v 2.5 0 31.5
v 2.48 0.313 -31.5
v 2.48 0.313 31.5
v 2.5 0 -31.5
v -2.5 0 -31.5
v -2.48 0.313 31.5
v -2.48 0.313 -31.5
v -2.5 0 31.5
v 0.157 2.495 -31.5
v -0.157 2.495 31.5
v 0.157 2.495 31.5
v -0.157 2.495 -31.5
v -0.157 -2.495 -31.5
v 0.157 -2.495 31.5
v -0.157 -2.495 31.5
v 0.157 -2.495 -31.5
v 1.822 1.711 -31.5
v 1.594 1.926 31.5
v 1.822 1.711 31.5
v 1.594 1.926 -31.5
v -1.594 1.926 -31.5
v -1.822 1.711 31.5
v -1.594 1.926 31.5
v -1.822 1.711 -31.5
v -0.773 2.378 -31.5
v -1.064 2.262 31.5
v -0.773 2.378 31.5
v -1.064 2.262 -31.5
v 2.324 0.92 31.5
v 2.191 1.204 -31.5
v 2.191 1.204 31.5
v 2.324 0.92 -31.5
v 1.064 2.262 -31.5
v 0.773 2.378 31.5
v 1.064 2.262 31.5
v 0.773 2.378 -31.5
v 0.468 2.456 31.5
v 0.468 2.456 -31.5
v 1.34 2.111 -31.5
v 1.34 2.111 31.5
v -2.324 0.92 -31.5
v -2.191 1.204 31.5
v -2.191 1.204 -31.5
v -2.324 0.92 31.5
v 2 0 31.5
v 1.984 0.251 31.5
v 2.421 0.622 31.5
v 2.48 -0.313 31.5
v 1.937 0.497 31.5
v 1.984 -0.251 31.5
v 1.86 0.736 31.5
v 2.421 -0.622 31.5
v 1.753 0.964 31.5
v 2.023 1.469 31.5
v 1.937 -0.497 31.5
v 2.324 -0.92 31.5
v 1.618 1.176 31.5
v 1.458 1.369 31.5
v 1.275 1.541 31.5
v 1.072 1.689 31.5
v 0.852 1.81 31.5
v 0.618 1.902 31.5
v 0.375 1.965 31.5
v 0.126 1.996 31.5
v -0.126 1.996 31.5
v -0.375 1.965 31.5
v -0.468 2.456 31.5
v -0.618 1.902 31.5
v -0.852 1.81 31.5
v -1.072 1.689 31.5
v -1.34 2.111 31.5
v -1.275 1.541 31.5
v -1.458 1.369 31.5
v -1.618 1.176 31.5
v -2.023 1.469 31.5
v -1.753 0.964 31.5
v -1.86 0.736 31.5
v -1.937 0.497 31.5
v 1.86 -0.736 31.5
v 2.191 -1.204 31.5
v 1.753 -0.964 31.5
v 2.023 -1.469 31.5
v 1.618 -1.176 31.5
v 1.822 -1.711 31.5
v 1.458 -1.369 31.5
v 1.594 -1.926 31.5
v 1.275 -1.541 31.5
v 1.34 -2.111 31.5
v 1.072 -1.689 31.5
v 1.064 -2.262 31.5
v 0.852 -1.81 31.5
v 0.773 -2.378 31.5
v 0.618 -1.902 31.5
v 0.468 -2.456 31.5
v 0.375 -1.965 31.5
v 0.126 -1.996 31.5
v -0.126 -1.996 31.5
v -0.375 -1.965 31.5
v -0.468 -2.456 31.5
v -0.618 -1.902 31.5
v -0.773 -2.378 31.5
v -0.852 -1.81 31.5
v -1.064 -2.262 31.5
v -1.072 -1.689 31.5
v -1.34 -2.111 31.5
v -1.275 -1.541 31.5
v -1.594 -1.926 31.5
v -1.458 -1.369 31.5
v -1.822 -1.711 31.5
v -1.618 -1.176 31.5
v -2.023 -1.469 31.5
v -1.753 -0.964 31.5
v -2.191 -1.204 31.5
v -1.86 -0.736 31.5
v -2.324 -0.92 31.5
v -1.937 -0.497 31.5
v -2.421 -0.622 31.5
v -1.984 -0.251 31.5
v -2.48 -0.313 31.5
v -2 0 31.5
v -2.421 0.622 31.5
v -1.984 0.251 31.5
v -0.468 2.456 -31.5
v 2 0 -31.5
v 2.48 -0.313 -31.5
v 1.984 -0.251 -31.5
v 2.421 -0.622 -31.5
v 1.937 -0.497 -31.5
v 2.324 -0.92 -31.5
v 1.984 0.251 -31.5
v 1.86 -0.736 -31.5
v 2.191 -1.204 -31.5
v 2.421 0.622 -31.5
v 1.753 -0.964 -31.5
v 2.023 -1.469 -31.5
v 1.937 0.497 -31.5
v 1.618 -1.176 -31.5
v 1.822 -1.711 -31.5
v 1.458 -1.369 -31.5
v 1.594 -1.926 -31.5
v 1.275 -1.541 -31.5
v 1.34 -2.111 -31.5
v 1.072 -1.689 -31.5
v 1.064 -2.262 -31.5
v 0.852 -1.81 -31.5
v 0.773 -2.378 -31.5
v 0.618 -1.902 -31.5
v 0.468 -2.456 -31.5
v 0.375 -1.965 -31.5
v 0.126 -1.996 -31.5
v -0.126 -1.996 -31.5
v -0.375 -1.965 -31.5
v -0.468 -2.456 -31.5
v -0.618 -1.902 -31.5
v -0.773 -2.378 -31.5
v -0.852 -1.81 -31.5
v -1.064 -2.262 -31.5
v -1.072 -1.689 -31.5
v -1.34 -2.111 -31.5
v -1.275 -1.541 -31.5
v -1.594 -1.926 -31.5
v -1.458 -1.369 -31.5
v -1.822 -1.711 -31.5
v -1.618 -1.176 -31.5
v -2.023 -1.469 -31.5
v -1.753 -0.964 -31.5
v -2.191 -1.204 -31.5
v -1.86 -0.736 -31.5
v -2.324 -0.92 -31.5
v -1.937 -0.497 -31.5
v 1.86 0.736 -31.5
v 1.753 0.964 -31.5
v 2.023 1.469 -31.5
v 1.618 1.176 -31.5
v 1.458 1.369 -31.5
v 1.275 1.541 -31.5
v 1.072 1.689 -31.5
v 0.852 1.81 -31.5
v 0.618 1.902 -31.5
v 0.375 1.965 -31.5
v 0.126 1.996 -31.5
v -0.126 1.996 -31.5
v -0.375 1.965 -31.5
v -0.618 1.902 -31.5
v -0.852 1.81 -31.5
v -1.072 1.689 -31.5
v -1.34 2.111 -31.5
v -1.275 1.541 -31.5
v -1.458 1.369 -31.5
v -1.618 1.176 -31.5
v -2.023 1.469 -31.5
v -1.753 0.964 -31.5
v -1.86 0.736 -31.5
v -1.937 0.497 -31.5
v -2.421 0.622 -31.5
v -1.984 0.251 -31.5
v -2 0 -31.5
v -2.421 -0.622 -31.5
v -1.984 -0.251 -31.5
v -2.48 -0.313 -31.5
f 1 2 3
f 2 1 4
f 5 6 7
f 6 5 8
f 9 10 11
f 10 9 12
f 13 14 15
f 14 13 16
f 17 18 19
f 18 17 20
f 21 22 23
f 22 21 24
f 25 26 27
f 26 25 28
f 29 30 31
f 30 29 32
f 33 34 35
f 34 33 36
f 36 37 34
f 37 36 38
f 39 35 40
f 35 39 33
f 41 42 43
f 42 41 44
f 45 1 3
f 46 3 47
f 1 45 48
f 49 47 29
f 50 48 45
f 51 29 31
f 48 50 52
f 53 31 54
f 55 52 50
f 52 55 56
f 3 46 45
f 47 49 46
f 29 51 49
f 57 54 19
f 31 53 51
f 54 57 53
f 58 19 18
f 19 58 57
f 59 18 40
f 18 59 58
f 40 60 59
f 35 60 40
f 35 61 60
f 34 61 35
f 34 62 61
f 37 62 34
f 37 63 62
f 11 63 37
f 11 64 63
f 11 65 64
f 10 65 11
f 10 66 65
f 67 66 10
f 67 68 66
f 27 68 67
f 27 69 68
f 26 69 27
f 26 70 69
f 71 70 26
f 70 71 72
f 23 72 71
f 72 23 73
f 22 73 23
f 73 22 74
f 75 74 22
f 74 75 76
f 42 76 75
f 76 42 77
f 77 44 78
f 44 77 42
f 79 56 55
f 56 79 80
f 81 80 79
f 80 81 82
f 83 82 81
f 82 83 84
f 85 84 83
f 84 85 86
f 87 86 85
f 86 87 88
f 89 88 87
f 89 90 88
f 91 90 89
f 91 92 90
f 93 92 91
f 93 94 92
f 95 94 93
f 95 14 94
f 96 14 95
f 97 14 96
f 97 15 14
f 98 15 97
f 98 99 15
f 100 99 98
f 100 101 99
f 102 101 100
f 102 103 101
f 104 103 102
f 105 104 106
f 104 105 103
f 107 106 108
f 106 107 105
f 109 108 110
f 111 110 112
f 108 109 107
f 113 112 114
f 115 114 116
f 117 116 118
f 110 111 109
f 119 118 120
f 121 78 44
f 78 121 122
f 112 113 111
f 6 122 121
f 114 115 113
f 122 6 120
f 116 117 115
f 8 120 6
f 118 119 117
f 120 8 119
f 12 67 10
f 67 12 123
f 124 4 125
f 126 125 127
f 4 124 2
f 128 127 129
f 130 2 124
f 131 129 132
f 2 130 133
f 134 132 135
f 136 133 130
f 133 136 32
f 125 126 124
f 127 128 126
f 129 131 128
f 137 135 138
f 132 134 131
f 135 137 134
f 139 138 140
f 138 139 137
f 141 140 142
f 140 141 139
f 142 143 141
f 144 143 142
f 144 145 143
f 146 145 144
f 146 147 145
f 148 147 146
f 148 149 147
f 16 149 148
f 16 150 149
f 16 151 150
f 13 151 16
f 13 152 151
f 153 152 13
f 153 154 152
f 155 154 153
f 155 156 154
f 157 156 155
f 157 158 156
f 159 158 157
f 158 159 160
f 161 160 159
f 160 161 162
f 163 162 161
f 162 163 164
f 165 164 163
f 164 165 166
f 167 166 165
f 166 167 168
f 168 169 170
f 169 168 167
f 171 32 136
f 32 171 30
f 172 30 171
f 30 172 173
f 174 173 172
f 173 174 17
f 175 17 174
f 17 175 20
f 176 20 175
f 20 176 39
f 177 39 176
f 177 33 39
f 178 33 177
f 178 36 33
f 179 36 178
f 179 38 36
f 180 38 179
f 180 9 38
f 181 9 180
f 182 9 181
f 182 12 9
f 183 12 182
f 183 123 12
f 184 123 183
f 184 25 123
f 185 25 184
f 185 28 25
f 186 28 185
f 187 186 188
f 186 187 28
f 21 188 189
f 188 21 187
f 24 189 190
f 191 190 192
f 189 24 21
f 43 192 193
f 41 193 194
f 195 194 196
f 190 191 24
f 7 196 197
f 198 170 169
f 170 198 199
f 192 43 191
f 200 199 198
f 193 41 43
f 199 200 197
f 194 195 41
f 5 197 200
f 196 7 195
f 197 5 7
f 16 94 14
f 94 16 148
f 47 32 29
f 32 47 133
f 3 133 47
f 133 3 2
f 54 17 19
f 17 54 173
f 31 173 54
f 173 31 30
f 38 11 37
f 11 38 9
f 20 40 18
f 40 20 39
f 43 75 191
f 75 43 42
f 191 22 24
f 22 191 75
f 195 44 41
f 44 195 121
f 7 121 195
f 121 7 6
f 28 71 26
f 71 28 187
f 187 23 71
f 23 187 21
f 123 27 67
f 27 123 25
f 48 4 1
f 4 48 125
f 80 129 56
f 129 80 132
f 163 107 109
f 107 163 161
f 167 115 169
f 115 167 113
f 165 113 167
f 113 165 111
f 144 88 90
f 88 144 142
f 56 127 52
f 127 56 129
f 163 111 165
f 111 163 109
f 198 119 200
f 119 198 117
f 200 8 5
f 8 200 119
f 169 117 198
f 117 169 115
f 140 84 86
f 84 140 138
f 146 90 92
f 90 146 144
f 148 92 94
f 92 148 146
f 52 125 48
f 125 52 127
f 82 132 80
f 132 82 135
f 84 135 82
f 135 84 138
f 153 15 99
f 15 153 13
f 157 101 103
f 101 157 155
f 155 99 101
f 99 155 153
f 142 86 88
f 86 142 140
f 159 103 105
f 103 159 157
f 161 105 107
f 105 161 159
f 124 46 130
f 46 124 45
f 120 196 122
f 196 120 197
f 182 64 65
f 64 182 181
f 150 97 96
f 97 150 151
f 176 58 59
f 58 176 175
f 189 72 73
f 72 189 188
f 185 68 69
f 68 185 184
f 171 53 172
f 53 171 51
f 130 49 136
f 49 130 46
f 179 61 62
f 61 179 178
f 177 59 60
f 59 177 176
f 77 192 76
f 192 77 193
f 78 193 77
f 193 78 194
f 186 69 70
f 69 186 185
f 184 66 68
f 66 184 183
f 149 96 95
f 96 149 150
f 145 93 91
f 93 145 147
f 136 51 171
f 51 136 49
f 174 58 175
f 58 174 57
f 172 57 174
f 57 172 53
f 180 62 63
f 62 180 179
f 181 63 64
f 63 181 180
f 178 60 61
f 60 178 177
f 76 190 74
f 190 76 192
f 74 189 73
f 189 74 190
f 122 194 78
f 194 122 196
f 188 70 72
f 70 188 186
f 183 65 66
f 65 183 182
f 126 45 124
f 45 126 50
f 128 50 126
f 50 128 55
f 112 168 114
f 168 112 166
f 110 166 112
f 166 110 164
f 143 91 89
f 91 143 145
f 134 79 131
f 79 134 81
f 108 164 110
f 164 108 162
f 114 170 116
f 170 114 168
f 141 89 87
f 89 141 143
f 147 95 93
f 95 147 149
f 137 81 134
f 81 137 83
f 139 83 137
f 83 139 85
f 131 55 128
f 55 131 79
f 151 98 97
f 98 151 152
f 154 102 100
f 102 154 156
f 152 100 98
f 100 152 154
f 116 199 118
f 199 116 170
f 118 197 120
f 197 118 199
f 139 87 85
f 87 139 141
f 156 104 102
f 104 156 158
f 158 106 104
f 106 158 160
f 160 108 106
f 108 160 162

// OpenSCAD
$fn = 50;


difference() {
	union() {
		translate(v = [0, 0, -31.5000000000]) {
			cylinder(h = 63, r = 2.5000000000);
		}
	}
	union() {
		translate(v = [0, 0, -100.0000000000]) {
			cylinder(h = 200, r = 2);
		}
	}
}
